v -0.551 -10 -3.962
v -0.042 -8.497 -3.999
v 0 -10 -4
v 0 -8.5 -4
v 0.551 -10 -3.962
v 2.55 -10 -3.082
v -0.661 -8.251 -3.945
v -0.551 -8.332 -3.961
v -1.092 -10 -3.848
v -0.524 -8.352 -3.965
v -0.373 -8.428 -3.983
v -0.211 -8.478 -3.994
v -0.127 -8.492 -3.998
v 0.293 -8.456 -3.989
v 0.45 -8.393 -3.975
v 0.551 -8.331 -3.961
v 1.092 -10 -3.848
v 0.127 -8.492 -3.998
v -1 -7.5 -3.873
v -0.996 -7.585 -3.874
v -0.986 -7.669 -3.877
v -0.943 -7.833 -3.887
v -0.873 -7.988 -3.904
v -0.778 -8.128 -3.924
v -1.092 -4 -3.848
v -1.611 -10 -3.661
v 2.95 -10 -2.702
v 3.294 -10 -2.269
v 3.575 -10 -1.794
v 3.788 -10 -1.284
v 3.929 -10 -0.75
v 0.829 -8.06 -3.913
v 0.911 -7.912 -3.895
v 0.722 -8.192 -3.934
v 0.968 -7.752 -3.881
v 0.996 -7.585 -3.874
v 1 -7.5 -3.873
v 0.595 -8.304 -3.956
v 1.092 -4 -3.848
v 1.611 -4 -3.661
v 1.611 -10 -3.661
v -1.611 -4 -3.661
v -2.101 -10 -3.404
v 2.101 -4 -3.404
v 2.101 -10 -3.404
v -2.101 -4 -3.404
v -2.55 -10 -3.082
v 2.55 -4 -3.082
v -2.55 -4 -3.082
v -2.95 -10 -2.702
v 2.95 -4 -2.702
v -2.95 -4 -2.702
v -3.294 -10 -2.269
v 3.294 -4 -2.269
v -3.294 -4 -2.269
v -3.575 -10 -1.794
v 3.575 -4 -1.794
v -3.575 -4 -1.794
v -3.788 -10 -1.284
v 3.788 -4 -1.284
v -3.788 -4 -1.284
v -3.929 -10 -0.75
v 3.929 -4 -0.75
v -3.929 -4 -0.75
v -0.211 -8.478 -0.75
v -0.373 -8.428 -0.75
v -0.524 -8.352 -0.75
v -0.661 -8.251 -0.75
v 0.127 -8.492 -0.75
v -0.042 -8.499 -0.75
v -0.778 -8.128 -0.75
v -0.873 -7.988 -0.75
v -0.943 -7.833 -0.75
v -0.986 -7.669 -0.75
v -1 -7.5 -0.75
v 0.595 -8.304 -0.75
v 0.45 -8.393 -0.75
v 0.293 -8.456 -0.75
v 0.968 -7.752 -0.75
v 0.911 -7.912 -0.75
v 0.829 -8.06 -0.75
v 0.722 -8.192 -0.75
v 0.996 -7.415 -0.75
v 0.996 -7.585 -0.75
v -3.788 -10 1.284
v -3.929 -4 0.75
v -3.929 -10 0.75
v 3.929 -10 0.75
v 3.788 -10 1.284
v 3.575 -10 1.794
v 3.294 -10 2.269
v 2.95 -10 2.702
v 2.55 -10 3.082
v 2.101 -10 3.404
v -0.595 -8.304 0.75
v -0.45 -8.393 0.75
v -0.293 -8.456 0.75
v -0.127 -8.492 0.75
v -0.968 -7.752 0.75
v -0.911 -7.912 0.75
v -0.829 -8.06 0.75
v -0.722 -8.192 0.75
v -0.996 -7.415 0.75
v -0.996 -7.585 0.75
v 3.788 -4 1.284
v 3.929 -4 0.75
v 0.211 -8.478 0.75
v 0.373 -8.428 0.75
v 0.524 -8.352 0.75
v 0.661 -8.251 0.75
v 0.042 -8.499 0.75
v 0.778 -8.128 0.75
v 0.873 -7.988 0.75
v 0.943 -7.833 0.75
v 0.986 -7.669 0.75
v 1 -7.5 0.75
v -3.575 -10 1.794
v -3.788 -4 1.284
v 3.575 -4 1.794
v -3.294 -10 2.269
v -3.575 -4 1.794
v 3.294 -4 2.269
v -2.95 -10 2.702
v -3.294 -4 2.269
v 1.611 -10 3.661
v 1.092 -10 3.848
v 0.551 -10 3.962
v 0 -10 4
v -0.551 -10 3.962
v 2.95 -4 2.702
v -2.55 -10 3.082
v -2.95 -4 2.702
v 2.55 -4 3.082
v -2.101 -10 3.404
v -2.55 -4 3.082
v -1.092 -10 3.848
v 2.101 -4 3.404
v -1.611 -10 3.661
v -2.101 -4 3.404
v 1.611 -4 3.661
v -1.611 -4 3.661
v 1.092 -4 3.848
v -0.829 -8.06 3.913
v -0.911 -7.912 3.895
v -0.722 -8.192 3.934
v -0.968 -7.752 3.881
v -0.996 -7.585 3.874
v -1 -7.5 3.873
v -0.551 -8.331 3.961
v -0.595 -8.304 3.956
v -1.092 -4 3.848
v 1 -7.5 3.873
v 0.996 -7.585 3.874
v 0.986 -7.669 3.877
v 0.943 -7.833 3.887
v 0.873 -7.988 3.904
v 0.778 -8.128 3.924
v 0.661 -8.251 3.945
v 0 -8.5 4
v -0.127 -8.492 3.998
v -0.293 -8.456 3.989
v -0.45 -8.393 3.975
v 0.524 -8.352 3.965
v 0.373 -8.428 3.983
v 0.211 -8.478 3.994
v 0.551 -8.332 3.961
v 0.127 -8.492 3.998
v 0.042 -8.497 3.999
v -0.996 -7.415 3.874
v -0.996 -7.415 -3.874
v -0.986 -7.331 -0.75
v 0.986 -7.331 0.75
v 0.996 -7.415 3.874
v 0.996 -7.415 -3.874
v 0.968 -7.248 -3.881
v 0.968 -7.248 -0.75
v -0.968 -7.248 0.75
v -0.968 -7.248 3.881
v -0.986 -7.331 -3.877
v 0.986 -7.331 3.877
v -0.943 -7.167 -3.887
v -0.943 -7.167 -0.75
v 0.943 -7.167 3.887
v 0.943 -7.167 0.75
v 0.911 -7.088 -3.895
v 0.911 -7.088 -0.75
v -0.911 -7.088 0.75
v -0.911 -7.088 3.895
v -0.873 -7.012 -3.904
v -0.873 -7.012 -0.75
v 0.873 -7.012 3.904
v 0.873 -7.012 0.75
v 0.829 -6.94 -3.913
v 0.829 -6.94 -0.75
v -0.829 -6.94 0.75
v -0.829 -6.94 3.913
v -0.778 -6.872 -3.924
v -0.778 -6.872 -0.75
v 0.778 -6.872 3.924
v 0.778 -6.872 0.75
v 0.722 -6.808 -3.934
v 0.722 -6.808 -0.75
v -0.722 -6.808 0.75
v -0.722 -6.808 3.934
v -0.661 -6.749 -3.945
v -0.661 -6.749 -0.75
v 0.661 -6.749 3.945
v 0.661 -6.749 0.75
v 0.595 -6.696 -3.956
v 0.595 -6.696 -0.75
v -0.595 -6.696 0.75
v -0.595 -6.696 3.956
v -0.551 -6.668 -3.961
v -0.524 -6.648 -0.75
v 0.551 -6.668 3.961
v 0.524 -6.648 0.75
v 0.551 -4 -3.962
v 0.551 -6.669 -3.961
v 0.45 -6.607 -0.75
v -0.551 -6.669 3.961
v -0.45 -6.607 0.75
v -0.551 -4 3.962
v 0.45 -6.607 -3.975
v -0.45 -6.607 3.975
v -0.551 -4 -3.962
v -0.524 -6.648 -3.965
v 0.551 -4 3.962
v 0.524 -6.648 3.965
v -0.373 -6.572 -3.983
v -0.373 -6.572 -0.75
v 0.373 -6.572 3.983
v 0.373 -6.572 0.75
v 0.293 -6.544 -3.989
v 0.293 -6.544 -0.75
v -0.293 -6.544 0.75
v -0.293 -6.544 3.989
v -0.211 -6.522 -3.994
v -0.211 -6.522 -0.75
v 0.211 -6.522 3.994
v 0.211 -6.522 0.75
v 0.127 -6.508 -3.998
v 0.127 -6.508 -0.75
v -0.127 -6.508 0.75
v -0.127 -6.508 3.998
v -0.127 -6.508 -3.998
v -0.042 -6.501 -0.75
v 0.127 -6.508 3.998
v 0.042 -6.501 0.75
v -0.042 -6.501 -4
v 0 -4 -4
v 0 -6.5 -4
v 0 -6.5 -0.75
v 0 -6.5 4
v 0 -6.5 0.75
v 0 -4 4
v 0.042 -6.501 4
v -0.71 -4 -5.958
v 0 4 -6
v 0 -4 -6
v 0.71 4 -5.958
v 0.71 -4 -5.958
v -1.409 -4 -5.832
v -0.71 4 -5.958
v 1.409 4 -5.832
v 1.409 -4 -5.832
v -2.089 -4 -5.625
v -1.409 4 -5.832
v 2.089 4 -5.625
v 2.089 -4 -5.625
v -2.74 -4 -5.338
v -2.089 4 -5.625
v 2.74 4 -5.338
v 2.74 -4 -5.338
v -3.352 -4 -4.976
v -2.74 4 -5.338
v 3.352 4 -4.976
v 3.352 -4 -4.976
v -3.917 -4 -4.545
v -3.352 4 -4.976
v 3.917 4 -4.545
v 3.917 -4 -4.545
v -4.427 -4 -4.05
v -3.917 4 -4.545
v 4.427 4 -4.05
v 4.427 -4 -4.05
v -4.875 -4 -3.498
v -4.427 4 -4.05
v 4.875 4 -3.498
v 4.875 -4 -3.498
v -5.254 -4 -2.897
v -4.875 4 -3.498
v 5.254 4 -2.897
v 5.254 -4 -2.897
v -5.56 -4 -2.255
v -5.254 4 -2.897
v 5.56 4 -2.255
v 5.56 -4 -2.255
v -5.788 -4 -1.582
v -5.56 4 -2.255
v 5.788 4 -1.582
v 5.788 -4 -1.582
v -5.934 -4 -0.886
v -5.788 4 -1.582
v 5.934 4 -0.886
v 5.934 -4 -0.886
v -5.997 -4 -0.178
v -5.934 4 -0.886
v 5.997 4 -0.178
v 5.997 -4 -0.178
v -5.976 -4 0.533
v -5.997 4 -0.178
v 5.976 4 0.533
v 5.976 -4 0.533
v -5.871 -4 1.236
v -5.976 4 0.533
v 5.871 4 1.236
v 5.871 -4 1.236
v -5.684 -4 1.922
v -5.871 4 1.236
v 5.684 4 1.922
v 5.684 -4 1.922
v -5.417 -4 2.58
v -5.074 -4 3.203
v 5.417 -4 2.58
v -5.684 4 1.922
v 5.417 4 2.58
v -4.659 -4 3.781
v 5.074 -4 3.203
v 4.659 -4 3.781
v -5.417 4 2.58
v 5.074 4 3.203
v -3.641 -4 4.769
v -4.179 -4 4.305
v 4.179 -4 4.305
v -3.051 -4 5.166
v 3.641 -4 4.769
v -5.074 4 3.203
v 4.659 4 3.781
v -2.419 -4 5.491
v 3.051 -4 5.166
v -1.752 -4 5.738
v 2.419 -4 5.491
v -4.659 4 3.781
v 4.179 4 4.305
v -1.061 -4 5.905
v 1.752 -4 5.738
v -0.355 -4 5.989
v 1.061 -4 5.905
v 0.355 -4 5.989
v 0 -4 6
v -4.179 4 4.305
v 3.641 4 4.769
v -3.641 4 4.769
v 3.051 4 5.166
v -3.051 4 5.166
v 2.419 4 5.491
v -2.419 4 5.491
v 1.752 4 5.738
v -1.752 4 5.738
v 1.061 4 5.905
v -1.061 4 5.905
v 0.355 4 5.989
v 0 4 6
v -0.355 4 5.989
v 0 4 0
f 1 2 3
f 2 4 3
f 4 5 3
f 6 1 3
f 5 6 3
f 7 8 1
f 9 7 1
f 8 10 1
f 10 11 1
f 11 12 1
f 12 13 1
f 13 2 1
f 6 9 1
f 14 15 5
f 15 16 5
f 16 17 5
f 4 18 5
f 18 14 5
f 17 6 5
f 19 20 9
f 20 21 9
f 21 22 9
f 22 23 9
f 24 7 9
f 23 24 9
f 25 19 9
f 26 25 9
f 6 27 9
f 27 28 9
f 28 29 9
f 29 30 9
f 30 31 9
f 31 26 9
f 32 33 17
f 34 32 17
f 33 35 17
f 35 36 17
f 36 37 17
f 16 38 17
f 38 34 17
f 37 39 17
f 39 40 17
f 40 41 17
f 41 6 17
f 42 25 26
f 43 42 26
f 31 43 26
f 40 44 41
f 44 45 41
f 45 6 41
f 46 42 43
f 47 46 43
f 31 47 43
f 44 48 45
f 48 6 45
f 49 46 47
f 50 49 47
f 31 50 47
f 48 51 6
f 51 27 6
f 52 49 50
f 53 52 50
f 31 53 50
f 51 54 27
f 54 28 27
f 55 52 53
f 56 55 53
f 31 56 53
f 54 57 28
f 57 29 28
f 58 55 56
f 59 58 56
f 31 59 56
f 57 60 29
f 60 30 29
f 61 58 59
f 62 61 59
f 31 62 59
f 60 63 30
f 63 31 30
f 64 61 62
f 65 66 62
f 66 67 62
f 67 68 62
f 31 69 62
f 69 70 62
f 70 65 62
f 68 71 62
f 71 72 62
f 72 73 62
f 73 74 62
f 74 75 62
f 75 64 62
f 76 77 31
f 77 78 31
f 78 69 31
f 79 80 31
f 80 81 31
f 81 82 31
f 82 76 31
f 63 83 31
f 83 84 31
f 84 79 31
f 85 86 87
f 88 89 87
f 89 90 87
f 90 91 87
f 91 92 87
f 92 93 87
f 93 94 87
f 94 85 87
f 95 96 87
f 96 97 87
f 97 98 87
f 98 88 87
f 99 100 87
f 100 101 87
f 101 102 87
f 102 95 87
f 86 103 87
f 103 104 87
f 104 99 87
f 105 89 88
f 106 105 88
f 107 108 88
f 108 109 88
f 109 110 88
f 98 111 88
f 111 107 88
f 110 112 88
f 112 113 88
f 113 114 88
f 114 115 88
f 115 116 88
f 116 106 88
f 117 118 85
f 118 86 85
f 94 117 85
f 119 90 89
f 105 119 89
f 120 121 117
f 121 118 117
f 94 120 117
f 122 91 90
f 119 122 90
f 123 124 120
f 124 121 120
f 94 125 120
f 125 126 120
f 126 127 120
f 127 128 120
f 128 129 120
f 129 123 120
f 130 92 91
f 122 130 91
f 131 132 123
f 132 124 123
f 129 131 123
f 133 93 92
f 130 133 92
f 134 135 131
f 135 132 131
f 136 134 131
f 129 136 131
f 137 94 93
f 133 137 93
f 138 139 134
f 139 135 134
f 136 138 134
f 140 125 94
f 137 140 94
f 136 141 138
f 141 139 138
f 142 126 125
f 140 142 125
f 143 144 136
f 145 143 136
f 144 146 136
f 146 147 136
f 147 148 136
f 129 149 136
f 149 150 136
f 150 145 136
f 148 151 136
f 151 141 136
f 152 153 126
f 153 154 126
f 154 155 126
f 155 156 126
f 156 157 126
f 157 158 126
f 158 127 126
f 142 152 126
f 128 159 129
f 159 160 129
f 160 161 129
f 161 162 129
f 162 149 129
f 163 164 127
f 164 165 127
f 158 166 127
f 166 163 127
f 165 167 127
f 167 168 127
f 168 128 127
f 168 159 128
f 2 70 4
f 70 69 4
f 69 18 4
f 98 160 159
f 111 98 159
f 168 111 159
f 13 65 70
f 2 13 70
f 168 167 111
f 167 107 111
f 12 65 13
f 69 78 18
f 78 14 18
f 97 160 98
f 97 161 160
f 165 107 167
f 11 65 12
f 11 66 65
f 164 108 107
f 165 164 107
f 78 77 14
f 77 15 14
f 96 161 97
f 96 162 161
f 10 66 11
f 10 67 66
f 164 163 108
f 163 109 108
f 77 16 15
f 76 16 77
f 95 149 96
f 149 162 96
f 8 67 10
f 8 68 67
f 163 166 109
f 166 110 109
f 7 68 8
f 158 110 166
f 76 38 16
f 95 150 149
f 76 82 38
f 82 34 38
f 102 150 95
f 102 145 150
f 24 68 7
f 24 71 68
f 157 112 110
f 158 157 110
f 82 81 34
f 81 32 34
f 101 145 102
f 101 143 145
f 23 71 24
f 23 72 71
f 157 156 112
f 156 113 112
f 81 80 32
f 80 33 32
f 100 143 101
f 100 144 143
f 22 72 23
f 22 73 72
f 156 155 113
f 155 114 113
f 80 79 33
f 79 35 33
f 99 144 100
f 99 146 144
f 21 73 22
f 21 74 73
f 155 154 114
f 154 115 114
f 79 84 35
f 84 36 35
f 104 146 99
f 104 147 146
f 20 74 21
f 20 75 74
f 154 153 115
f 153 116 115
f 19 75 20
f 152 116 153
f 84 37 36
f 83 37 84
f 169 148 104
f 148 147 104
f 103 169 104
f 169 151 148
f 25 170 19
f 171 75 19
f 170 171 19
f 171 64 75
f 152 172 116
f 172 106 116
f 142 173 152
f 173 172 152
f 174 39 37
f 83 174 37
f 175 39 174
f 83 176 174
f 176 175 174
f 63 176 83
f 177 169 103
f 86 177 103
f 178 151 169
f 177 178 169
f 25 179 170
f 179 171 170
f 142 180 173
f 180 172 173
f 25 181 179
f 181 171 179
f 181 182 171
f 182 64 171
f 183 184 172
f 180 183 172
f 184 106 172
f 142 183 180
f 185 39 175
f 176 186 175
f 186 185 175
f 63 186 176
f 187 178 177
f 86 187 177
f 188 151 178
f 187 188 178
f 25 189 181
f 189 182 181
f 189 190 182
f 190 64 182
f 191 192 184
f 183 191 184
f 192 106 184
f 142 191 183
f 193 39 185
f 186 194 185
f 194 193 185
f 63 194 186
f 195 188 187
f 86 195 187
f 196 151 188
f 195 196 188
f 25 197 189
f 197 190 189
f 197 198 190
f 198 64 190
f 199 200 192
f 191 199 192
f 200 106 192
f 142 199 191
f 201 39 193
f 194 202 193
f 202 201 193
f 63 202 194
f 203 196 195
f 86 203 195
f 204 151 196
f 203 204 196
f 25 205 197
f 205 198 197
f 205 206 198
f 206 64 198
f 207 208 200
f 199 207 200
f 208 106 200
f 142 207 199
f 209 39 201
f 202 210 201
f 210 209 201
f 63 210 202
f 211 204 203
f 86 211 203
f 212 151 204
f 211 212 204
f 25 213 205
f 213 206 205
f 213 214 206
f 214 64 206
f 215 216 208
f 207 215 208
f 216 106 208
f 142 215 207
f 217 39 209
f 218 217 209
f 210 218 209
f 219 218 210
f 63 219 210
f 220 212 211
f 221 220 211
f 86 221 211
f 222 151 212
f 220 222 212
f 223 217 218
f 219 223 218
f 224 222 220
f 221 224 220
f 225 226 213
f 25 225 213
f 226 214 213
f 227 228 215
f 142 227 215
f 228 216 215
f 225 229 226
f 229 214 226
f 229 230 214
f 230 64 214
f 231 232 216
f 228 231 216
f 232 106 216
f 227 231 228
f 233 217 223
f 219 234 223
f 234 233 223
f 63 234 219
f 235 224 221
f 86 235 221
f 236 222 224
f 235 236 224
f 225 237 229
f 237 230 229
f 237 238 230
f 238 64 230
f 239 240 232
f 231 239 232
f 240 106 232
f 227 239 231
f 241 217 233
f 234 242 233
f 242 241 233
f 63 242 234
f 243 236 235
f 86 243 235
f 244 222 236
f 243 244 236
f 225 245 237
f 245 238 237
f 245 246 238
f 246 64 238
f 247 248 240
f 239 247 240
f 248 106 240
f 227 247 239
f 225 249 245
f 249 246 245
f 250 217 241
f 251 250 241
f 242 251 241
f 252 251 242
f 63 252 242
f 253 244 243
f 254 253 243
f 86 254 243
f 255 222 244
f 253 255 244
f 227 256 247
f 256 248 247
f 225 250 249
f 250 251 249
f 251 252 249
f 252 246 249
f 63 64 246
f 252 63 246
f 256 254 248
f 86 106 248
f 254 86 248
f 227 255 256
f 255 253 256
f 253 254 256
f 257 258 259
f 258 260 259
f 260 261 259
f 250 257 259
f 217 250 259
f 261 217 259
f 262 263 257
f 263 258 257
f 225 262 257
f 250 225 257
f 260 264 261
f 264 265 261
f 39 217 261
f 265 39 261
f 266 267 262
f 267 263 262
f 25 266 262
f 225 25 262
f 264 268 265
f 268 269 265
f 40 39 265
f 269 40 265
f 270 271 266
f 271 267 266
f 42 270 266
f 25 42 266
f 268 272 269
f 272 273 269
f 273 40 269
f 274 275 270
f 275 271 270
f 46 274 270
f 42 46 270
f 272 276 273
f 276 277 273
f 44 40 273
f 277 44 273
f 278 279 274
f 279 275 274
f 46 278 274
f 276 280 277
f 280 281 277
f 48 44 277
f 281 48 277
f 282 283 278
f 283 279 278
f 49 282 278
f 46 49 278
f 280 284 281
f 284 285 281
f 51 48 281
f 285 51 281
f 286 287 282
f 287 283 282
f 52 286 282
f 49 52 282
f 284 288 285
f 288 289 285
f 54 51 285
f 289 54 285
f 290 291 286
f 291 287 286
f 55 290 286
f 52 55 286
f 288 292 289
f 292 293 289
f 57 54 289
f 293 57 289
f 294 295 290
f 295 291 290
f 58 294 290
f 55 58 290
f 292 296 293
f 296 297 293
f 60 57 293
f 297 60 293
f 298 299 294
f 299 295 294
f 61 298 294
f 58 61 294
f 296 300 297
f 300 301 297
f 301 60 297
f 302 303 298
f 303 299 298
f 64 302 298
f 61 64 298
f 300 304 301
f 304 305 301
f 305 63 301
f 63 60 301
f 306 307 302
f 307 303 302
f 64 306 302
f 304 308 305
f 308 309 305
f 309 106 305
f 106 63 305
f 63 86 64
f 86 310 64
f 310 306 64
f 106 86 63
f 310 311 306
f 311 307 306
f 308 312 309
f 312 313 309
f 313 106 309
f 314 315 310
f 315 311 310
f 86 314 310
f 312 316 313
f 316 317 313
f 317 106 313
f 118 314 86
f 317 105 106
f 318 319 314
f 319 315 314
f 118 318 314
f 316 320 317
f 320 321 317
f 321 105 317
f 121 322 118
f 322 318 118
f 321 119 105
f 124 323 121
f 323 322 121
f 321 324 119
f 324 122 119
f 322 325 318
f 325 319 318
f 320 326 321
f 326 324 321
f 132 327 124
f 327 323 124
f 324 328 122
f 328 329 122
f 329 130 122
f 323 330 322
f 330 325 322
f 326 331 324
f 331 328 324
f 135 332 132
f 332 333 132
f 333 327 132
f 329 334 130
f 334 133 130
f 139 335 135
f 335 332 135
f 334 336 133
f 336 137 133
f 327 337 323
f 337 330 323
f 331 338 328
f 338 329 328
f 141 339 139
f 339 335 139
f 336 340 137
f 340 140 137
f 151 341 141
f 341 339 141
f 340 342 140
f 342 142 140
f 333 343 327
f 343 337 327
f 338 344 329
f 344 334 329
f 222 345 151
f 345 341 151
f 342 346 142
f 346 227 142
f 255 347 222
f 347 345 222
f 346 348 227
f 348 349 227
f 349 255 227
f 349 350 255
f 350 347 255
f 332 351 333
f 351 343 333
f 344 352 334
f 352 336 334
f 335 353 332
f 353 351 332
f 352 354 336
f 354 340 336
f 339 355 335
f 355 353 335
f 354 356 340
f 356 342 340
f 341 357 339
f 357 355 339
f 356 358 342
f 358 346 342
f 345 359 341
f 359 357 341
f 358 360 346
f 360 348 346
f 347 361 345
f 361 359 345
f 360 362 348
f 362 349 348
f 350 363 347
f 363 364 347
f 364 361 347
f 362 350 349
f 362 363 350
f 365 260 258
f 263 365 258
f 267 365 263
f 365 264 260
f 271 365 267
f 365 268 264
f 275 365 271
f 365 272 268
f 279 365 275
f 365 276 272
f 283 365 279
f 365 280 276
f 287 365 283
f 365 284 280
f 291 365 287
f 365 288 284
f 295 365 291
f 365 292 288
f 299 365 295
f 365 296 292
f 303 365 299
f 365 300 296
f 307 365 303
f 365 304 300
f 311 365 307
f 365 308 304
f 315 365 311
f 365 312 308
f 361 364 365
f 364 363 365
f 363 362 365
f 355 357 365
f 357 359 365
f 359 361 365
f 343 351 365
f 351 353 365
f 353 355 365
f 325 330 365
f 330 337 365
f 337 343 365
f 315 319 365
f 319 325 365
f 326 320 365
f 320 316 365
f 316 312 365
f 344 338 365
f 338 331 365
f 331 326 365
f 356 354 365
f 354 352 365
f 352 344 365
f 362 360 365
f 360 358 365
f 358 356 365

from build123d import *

# Parameters (mm, degrees)
SKETCH1_R                                 = 6
BOSS_EXTRUDE1_DEPTH                       = 4
SKETCH2_R                                 = 4
BOSS_EXTRUDE2_DEPTH                       = 6
F_2_0MM_PRESS_DOWEL_HOLE1_D               = 2
F_2_0MM_PRESS_DOWEL_HOLE1_DEPTH           = 3.25
F_2_0MM_PRESS_DOWEL_HOLE1_TIP             = 0.600860619
F_2_0MM_PRESS_DOWEL_HOLE1_ON_FACE_2_D     = 2
F_2_0MM_PRESS_DOWEL_HOLE1_ON_FACE_2_DEPTH = 3.25
F_2_0MM_PRESS_DOWEL_HOLE1_ON_FACE_2_TIP   = 0.600860619
CUT_EXTRUDE1_DEPTH                        = 14.114877125
CUT_EXTRUDE1_DEPTH_BACK                   = 14.114877125
SKETCH8_W                                 = 1.5
SKETCH8_H                                 = 6


with BuildPart() as part:
    # Sketch1 → Boss-Extrude1 (new, symmetric)
    with BuildSketch(Plane(origin=(0, 0, 0), x_dir=(1, 0, 0), z_dir=(0, 1, 0))):
        with Locations(Location((0, 0, 0), (0, 0, 270))):
            Circle(SKETCH1_R)
    extrude(amount=BOSS_EXTRUDE1_DEPTH, both=True)

    # Sketch2 → Boss-Extrude2 (add)
    with BuildSketch(Plane.XZ.offset(4)):
        with Locations(Location((0, 0, 0), (0, 0, 270))):
            Circle(SKETCH2_R)
    extrude(amount=BOSS_EXTRUDE2_DEPTH)

    # Ø2.0mm Press Dowel Hole1
    with Locations(Plane(origin=(0, -7.5, 4), x_dir=(1, 0, 0), z_dir=(0, 0, 1))):
        with Locations((0, 0)):
            Hole(F_2_0MM_PRESS_DOWEL_HOLE1_D / 2, depth=F_2_0MM_PRESS_DOWEL_HOLE1_DEPTH)
            with Locations((0, 0, -(F_2_0MM_PRESS_DOWEL_HOLE1_DEPTH + F_2_0MM_PRESS_DOWEL_HOLE1_TIP / 2))):  # 118° drill point
                Cone(0, F_2_0MM_PRESS_DOWEL_HOLE1_D / 2, F_2_0MM_PRESS_DOWEL_HOLE1_TIP, mode=Mode.SUBTRACT)

    # Ø2.0mm Press Dowel Hole1 on face 2
    with Locations(Plane(origin=(0, -7.5, -4), x_dir=(-1, 0, 0), z_dir=(0, 0, -1))):
        with Locations((0, 0)):
            Hole(F_2_0MM_PRESS_DOWEL_HOLE1_ON_FACE_2_D / 2, depth=F_2_0MM_PRESS_DOWEL_HOLE1_ON_FACE_2_DEPTH)
            with Locations((0, 0, -(F_2_0MM_PRESS_DOWEL_HOLE1_ON_FACE_2_DEPTH + F_2_0MM_PRESS_DOWEL_HOLE1_ON_FACE_2_TIP / 2))):  # 118° drill point
                Cone(0, F_2_0MM_PRESS_DOWEL_HOLE1_ON_FACE_2_D / 2, F_2_0MM_PRESS_DOWEL_HOLE1_ON_FACE_2_TIP, mode=Mode.SUBTRACT)

    # Sketch8 → Cut-Extrude1 (cut, two sides: drawn at the far end of the back side and taken through both)
    with BuildSketch(Plane(origin=(0, 0, 0), x_dir=(0, 0, -1), z_dir=(1, 0, 0)).offset(-CUT_EXTRUDE1_DEPTH_BACK)):
        with Locations((0, -7)):
            Rectangle(SKETCH8_W, SKETCH8_H)
    extrude(amount=CUT_EXTRUDE1_DEPTH + CUT_EXTRUDE1_DEPTH_BACK, mode=Mode.SUBTRACT)


solid = part.part
